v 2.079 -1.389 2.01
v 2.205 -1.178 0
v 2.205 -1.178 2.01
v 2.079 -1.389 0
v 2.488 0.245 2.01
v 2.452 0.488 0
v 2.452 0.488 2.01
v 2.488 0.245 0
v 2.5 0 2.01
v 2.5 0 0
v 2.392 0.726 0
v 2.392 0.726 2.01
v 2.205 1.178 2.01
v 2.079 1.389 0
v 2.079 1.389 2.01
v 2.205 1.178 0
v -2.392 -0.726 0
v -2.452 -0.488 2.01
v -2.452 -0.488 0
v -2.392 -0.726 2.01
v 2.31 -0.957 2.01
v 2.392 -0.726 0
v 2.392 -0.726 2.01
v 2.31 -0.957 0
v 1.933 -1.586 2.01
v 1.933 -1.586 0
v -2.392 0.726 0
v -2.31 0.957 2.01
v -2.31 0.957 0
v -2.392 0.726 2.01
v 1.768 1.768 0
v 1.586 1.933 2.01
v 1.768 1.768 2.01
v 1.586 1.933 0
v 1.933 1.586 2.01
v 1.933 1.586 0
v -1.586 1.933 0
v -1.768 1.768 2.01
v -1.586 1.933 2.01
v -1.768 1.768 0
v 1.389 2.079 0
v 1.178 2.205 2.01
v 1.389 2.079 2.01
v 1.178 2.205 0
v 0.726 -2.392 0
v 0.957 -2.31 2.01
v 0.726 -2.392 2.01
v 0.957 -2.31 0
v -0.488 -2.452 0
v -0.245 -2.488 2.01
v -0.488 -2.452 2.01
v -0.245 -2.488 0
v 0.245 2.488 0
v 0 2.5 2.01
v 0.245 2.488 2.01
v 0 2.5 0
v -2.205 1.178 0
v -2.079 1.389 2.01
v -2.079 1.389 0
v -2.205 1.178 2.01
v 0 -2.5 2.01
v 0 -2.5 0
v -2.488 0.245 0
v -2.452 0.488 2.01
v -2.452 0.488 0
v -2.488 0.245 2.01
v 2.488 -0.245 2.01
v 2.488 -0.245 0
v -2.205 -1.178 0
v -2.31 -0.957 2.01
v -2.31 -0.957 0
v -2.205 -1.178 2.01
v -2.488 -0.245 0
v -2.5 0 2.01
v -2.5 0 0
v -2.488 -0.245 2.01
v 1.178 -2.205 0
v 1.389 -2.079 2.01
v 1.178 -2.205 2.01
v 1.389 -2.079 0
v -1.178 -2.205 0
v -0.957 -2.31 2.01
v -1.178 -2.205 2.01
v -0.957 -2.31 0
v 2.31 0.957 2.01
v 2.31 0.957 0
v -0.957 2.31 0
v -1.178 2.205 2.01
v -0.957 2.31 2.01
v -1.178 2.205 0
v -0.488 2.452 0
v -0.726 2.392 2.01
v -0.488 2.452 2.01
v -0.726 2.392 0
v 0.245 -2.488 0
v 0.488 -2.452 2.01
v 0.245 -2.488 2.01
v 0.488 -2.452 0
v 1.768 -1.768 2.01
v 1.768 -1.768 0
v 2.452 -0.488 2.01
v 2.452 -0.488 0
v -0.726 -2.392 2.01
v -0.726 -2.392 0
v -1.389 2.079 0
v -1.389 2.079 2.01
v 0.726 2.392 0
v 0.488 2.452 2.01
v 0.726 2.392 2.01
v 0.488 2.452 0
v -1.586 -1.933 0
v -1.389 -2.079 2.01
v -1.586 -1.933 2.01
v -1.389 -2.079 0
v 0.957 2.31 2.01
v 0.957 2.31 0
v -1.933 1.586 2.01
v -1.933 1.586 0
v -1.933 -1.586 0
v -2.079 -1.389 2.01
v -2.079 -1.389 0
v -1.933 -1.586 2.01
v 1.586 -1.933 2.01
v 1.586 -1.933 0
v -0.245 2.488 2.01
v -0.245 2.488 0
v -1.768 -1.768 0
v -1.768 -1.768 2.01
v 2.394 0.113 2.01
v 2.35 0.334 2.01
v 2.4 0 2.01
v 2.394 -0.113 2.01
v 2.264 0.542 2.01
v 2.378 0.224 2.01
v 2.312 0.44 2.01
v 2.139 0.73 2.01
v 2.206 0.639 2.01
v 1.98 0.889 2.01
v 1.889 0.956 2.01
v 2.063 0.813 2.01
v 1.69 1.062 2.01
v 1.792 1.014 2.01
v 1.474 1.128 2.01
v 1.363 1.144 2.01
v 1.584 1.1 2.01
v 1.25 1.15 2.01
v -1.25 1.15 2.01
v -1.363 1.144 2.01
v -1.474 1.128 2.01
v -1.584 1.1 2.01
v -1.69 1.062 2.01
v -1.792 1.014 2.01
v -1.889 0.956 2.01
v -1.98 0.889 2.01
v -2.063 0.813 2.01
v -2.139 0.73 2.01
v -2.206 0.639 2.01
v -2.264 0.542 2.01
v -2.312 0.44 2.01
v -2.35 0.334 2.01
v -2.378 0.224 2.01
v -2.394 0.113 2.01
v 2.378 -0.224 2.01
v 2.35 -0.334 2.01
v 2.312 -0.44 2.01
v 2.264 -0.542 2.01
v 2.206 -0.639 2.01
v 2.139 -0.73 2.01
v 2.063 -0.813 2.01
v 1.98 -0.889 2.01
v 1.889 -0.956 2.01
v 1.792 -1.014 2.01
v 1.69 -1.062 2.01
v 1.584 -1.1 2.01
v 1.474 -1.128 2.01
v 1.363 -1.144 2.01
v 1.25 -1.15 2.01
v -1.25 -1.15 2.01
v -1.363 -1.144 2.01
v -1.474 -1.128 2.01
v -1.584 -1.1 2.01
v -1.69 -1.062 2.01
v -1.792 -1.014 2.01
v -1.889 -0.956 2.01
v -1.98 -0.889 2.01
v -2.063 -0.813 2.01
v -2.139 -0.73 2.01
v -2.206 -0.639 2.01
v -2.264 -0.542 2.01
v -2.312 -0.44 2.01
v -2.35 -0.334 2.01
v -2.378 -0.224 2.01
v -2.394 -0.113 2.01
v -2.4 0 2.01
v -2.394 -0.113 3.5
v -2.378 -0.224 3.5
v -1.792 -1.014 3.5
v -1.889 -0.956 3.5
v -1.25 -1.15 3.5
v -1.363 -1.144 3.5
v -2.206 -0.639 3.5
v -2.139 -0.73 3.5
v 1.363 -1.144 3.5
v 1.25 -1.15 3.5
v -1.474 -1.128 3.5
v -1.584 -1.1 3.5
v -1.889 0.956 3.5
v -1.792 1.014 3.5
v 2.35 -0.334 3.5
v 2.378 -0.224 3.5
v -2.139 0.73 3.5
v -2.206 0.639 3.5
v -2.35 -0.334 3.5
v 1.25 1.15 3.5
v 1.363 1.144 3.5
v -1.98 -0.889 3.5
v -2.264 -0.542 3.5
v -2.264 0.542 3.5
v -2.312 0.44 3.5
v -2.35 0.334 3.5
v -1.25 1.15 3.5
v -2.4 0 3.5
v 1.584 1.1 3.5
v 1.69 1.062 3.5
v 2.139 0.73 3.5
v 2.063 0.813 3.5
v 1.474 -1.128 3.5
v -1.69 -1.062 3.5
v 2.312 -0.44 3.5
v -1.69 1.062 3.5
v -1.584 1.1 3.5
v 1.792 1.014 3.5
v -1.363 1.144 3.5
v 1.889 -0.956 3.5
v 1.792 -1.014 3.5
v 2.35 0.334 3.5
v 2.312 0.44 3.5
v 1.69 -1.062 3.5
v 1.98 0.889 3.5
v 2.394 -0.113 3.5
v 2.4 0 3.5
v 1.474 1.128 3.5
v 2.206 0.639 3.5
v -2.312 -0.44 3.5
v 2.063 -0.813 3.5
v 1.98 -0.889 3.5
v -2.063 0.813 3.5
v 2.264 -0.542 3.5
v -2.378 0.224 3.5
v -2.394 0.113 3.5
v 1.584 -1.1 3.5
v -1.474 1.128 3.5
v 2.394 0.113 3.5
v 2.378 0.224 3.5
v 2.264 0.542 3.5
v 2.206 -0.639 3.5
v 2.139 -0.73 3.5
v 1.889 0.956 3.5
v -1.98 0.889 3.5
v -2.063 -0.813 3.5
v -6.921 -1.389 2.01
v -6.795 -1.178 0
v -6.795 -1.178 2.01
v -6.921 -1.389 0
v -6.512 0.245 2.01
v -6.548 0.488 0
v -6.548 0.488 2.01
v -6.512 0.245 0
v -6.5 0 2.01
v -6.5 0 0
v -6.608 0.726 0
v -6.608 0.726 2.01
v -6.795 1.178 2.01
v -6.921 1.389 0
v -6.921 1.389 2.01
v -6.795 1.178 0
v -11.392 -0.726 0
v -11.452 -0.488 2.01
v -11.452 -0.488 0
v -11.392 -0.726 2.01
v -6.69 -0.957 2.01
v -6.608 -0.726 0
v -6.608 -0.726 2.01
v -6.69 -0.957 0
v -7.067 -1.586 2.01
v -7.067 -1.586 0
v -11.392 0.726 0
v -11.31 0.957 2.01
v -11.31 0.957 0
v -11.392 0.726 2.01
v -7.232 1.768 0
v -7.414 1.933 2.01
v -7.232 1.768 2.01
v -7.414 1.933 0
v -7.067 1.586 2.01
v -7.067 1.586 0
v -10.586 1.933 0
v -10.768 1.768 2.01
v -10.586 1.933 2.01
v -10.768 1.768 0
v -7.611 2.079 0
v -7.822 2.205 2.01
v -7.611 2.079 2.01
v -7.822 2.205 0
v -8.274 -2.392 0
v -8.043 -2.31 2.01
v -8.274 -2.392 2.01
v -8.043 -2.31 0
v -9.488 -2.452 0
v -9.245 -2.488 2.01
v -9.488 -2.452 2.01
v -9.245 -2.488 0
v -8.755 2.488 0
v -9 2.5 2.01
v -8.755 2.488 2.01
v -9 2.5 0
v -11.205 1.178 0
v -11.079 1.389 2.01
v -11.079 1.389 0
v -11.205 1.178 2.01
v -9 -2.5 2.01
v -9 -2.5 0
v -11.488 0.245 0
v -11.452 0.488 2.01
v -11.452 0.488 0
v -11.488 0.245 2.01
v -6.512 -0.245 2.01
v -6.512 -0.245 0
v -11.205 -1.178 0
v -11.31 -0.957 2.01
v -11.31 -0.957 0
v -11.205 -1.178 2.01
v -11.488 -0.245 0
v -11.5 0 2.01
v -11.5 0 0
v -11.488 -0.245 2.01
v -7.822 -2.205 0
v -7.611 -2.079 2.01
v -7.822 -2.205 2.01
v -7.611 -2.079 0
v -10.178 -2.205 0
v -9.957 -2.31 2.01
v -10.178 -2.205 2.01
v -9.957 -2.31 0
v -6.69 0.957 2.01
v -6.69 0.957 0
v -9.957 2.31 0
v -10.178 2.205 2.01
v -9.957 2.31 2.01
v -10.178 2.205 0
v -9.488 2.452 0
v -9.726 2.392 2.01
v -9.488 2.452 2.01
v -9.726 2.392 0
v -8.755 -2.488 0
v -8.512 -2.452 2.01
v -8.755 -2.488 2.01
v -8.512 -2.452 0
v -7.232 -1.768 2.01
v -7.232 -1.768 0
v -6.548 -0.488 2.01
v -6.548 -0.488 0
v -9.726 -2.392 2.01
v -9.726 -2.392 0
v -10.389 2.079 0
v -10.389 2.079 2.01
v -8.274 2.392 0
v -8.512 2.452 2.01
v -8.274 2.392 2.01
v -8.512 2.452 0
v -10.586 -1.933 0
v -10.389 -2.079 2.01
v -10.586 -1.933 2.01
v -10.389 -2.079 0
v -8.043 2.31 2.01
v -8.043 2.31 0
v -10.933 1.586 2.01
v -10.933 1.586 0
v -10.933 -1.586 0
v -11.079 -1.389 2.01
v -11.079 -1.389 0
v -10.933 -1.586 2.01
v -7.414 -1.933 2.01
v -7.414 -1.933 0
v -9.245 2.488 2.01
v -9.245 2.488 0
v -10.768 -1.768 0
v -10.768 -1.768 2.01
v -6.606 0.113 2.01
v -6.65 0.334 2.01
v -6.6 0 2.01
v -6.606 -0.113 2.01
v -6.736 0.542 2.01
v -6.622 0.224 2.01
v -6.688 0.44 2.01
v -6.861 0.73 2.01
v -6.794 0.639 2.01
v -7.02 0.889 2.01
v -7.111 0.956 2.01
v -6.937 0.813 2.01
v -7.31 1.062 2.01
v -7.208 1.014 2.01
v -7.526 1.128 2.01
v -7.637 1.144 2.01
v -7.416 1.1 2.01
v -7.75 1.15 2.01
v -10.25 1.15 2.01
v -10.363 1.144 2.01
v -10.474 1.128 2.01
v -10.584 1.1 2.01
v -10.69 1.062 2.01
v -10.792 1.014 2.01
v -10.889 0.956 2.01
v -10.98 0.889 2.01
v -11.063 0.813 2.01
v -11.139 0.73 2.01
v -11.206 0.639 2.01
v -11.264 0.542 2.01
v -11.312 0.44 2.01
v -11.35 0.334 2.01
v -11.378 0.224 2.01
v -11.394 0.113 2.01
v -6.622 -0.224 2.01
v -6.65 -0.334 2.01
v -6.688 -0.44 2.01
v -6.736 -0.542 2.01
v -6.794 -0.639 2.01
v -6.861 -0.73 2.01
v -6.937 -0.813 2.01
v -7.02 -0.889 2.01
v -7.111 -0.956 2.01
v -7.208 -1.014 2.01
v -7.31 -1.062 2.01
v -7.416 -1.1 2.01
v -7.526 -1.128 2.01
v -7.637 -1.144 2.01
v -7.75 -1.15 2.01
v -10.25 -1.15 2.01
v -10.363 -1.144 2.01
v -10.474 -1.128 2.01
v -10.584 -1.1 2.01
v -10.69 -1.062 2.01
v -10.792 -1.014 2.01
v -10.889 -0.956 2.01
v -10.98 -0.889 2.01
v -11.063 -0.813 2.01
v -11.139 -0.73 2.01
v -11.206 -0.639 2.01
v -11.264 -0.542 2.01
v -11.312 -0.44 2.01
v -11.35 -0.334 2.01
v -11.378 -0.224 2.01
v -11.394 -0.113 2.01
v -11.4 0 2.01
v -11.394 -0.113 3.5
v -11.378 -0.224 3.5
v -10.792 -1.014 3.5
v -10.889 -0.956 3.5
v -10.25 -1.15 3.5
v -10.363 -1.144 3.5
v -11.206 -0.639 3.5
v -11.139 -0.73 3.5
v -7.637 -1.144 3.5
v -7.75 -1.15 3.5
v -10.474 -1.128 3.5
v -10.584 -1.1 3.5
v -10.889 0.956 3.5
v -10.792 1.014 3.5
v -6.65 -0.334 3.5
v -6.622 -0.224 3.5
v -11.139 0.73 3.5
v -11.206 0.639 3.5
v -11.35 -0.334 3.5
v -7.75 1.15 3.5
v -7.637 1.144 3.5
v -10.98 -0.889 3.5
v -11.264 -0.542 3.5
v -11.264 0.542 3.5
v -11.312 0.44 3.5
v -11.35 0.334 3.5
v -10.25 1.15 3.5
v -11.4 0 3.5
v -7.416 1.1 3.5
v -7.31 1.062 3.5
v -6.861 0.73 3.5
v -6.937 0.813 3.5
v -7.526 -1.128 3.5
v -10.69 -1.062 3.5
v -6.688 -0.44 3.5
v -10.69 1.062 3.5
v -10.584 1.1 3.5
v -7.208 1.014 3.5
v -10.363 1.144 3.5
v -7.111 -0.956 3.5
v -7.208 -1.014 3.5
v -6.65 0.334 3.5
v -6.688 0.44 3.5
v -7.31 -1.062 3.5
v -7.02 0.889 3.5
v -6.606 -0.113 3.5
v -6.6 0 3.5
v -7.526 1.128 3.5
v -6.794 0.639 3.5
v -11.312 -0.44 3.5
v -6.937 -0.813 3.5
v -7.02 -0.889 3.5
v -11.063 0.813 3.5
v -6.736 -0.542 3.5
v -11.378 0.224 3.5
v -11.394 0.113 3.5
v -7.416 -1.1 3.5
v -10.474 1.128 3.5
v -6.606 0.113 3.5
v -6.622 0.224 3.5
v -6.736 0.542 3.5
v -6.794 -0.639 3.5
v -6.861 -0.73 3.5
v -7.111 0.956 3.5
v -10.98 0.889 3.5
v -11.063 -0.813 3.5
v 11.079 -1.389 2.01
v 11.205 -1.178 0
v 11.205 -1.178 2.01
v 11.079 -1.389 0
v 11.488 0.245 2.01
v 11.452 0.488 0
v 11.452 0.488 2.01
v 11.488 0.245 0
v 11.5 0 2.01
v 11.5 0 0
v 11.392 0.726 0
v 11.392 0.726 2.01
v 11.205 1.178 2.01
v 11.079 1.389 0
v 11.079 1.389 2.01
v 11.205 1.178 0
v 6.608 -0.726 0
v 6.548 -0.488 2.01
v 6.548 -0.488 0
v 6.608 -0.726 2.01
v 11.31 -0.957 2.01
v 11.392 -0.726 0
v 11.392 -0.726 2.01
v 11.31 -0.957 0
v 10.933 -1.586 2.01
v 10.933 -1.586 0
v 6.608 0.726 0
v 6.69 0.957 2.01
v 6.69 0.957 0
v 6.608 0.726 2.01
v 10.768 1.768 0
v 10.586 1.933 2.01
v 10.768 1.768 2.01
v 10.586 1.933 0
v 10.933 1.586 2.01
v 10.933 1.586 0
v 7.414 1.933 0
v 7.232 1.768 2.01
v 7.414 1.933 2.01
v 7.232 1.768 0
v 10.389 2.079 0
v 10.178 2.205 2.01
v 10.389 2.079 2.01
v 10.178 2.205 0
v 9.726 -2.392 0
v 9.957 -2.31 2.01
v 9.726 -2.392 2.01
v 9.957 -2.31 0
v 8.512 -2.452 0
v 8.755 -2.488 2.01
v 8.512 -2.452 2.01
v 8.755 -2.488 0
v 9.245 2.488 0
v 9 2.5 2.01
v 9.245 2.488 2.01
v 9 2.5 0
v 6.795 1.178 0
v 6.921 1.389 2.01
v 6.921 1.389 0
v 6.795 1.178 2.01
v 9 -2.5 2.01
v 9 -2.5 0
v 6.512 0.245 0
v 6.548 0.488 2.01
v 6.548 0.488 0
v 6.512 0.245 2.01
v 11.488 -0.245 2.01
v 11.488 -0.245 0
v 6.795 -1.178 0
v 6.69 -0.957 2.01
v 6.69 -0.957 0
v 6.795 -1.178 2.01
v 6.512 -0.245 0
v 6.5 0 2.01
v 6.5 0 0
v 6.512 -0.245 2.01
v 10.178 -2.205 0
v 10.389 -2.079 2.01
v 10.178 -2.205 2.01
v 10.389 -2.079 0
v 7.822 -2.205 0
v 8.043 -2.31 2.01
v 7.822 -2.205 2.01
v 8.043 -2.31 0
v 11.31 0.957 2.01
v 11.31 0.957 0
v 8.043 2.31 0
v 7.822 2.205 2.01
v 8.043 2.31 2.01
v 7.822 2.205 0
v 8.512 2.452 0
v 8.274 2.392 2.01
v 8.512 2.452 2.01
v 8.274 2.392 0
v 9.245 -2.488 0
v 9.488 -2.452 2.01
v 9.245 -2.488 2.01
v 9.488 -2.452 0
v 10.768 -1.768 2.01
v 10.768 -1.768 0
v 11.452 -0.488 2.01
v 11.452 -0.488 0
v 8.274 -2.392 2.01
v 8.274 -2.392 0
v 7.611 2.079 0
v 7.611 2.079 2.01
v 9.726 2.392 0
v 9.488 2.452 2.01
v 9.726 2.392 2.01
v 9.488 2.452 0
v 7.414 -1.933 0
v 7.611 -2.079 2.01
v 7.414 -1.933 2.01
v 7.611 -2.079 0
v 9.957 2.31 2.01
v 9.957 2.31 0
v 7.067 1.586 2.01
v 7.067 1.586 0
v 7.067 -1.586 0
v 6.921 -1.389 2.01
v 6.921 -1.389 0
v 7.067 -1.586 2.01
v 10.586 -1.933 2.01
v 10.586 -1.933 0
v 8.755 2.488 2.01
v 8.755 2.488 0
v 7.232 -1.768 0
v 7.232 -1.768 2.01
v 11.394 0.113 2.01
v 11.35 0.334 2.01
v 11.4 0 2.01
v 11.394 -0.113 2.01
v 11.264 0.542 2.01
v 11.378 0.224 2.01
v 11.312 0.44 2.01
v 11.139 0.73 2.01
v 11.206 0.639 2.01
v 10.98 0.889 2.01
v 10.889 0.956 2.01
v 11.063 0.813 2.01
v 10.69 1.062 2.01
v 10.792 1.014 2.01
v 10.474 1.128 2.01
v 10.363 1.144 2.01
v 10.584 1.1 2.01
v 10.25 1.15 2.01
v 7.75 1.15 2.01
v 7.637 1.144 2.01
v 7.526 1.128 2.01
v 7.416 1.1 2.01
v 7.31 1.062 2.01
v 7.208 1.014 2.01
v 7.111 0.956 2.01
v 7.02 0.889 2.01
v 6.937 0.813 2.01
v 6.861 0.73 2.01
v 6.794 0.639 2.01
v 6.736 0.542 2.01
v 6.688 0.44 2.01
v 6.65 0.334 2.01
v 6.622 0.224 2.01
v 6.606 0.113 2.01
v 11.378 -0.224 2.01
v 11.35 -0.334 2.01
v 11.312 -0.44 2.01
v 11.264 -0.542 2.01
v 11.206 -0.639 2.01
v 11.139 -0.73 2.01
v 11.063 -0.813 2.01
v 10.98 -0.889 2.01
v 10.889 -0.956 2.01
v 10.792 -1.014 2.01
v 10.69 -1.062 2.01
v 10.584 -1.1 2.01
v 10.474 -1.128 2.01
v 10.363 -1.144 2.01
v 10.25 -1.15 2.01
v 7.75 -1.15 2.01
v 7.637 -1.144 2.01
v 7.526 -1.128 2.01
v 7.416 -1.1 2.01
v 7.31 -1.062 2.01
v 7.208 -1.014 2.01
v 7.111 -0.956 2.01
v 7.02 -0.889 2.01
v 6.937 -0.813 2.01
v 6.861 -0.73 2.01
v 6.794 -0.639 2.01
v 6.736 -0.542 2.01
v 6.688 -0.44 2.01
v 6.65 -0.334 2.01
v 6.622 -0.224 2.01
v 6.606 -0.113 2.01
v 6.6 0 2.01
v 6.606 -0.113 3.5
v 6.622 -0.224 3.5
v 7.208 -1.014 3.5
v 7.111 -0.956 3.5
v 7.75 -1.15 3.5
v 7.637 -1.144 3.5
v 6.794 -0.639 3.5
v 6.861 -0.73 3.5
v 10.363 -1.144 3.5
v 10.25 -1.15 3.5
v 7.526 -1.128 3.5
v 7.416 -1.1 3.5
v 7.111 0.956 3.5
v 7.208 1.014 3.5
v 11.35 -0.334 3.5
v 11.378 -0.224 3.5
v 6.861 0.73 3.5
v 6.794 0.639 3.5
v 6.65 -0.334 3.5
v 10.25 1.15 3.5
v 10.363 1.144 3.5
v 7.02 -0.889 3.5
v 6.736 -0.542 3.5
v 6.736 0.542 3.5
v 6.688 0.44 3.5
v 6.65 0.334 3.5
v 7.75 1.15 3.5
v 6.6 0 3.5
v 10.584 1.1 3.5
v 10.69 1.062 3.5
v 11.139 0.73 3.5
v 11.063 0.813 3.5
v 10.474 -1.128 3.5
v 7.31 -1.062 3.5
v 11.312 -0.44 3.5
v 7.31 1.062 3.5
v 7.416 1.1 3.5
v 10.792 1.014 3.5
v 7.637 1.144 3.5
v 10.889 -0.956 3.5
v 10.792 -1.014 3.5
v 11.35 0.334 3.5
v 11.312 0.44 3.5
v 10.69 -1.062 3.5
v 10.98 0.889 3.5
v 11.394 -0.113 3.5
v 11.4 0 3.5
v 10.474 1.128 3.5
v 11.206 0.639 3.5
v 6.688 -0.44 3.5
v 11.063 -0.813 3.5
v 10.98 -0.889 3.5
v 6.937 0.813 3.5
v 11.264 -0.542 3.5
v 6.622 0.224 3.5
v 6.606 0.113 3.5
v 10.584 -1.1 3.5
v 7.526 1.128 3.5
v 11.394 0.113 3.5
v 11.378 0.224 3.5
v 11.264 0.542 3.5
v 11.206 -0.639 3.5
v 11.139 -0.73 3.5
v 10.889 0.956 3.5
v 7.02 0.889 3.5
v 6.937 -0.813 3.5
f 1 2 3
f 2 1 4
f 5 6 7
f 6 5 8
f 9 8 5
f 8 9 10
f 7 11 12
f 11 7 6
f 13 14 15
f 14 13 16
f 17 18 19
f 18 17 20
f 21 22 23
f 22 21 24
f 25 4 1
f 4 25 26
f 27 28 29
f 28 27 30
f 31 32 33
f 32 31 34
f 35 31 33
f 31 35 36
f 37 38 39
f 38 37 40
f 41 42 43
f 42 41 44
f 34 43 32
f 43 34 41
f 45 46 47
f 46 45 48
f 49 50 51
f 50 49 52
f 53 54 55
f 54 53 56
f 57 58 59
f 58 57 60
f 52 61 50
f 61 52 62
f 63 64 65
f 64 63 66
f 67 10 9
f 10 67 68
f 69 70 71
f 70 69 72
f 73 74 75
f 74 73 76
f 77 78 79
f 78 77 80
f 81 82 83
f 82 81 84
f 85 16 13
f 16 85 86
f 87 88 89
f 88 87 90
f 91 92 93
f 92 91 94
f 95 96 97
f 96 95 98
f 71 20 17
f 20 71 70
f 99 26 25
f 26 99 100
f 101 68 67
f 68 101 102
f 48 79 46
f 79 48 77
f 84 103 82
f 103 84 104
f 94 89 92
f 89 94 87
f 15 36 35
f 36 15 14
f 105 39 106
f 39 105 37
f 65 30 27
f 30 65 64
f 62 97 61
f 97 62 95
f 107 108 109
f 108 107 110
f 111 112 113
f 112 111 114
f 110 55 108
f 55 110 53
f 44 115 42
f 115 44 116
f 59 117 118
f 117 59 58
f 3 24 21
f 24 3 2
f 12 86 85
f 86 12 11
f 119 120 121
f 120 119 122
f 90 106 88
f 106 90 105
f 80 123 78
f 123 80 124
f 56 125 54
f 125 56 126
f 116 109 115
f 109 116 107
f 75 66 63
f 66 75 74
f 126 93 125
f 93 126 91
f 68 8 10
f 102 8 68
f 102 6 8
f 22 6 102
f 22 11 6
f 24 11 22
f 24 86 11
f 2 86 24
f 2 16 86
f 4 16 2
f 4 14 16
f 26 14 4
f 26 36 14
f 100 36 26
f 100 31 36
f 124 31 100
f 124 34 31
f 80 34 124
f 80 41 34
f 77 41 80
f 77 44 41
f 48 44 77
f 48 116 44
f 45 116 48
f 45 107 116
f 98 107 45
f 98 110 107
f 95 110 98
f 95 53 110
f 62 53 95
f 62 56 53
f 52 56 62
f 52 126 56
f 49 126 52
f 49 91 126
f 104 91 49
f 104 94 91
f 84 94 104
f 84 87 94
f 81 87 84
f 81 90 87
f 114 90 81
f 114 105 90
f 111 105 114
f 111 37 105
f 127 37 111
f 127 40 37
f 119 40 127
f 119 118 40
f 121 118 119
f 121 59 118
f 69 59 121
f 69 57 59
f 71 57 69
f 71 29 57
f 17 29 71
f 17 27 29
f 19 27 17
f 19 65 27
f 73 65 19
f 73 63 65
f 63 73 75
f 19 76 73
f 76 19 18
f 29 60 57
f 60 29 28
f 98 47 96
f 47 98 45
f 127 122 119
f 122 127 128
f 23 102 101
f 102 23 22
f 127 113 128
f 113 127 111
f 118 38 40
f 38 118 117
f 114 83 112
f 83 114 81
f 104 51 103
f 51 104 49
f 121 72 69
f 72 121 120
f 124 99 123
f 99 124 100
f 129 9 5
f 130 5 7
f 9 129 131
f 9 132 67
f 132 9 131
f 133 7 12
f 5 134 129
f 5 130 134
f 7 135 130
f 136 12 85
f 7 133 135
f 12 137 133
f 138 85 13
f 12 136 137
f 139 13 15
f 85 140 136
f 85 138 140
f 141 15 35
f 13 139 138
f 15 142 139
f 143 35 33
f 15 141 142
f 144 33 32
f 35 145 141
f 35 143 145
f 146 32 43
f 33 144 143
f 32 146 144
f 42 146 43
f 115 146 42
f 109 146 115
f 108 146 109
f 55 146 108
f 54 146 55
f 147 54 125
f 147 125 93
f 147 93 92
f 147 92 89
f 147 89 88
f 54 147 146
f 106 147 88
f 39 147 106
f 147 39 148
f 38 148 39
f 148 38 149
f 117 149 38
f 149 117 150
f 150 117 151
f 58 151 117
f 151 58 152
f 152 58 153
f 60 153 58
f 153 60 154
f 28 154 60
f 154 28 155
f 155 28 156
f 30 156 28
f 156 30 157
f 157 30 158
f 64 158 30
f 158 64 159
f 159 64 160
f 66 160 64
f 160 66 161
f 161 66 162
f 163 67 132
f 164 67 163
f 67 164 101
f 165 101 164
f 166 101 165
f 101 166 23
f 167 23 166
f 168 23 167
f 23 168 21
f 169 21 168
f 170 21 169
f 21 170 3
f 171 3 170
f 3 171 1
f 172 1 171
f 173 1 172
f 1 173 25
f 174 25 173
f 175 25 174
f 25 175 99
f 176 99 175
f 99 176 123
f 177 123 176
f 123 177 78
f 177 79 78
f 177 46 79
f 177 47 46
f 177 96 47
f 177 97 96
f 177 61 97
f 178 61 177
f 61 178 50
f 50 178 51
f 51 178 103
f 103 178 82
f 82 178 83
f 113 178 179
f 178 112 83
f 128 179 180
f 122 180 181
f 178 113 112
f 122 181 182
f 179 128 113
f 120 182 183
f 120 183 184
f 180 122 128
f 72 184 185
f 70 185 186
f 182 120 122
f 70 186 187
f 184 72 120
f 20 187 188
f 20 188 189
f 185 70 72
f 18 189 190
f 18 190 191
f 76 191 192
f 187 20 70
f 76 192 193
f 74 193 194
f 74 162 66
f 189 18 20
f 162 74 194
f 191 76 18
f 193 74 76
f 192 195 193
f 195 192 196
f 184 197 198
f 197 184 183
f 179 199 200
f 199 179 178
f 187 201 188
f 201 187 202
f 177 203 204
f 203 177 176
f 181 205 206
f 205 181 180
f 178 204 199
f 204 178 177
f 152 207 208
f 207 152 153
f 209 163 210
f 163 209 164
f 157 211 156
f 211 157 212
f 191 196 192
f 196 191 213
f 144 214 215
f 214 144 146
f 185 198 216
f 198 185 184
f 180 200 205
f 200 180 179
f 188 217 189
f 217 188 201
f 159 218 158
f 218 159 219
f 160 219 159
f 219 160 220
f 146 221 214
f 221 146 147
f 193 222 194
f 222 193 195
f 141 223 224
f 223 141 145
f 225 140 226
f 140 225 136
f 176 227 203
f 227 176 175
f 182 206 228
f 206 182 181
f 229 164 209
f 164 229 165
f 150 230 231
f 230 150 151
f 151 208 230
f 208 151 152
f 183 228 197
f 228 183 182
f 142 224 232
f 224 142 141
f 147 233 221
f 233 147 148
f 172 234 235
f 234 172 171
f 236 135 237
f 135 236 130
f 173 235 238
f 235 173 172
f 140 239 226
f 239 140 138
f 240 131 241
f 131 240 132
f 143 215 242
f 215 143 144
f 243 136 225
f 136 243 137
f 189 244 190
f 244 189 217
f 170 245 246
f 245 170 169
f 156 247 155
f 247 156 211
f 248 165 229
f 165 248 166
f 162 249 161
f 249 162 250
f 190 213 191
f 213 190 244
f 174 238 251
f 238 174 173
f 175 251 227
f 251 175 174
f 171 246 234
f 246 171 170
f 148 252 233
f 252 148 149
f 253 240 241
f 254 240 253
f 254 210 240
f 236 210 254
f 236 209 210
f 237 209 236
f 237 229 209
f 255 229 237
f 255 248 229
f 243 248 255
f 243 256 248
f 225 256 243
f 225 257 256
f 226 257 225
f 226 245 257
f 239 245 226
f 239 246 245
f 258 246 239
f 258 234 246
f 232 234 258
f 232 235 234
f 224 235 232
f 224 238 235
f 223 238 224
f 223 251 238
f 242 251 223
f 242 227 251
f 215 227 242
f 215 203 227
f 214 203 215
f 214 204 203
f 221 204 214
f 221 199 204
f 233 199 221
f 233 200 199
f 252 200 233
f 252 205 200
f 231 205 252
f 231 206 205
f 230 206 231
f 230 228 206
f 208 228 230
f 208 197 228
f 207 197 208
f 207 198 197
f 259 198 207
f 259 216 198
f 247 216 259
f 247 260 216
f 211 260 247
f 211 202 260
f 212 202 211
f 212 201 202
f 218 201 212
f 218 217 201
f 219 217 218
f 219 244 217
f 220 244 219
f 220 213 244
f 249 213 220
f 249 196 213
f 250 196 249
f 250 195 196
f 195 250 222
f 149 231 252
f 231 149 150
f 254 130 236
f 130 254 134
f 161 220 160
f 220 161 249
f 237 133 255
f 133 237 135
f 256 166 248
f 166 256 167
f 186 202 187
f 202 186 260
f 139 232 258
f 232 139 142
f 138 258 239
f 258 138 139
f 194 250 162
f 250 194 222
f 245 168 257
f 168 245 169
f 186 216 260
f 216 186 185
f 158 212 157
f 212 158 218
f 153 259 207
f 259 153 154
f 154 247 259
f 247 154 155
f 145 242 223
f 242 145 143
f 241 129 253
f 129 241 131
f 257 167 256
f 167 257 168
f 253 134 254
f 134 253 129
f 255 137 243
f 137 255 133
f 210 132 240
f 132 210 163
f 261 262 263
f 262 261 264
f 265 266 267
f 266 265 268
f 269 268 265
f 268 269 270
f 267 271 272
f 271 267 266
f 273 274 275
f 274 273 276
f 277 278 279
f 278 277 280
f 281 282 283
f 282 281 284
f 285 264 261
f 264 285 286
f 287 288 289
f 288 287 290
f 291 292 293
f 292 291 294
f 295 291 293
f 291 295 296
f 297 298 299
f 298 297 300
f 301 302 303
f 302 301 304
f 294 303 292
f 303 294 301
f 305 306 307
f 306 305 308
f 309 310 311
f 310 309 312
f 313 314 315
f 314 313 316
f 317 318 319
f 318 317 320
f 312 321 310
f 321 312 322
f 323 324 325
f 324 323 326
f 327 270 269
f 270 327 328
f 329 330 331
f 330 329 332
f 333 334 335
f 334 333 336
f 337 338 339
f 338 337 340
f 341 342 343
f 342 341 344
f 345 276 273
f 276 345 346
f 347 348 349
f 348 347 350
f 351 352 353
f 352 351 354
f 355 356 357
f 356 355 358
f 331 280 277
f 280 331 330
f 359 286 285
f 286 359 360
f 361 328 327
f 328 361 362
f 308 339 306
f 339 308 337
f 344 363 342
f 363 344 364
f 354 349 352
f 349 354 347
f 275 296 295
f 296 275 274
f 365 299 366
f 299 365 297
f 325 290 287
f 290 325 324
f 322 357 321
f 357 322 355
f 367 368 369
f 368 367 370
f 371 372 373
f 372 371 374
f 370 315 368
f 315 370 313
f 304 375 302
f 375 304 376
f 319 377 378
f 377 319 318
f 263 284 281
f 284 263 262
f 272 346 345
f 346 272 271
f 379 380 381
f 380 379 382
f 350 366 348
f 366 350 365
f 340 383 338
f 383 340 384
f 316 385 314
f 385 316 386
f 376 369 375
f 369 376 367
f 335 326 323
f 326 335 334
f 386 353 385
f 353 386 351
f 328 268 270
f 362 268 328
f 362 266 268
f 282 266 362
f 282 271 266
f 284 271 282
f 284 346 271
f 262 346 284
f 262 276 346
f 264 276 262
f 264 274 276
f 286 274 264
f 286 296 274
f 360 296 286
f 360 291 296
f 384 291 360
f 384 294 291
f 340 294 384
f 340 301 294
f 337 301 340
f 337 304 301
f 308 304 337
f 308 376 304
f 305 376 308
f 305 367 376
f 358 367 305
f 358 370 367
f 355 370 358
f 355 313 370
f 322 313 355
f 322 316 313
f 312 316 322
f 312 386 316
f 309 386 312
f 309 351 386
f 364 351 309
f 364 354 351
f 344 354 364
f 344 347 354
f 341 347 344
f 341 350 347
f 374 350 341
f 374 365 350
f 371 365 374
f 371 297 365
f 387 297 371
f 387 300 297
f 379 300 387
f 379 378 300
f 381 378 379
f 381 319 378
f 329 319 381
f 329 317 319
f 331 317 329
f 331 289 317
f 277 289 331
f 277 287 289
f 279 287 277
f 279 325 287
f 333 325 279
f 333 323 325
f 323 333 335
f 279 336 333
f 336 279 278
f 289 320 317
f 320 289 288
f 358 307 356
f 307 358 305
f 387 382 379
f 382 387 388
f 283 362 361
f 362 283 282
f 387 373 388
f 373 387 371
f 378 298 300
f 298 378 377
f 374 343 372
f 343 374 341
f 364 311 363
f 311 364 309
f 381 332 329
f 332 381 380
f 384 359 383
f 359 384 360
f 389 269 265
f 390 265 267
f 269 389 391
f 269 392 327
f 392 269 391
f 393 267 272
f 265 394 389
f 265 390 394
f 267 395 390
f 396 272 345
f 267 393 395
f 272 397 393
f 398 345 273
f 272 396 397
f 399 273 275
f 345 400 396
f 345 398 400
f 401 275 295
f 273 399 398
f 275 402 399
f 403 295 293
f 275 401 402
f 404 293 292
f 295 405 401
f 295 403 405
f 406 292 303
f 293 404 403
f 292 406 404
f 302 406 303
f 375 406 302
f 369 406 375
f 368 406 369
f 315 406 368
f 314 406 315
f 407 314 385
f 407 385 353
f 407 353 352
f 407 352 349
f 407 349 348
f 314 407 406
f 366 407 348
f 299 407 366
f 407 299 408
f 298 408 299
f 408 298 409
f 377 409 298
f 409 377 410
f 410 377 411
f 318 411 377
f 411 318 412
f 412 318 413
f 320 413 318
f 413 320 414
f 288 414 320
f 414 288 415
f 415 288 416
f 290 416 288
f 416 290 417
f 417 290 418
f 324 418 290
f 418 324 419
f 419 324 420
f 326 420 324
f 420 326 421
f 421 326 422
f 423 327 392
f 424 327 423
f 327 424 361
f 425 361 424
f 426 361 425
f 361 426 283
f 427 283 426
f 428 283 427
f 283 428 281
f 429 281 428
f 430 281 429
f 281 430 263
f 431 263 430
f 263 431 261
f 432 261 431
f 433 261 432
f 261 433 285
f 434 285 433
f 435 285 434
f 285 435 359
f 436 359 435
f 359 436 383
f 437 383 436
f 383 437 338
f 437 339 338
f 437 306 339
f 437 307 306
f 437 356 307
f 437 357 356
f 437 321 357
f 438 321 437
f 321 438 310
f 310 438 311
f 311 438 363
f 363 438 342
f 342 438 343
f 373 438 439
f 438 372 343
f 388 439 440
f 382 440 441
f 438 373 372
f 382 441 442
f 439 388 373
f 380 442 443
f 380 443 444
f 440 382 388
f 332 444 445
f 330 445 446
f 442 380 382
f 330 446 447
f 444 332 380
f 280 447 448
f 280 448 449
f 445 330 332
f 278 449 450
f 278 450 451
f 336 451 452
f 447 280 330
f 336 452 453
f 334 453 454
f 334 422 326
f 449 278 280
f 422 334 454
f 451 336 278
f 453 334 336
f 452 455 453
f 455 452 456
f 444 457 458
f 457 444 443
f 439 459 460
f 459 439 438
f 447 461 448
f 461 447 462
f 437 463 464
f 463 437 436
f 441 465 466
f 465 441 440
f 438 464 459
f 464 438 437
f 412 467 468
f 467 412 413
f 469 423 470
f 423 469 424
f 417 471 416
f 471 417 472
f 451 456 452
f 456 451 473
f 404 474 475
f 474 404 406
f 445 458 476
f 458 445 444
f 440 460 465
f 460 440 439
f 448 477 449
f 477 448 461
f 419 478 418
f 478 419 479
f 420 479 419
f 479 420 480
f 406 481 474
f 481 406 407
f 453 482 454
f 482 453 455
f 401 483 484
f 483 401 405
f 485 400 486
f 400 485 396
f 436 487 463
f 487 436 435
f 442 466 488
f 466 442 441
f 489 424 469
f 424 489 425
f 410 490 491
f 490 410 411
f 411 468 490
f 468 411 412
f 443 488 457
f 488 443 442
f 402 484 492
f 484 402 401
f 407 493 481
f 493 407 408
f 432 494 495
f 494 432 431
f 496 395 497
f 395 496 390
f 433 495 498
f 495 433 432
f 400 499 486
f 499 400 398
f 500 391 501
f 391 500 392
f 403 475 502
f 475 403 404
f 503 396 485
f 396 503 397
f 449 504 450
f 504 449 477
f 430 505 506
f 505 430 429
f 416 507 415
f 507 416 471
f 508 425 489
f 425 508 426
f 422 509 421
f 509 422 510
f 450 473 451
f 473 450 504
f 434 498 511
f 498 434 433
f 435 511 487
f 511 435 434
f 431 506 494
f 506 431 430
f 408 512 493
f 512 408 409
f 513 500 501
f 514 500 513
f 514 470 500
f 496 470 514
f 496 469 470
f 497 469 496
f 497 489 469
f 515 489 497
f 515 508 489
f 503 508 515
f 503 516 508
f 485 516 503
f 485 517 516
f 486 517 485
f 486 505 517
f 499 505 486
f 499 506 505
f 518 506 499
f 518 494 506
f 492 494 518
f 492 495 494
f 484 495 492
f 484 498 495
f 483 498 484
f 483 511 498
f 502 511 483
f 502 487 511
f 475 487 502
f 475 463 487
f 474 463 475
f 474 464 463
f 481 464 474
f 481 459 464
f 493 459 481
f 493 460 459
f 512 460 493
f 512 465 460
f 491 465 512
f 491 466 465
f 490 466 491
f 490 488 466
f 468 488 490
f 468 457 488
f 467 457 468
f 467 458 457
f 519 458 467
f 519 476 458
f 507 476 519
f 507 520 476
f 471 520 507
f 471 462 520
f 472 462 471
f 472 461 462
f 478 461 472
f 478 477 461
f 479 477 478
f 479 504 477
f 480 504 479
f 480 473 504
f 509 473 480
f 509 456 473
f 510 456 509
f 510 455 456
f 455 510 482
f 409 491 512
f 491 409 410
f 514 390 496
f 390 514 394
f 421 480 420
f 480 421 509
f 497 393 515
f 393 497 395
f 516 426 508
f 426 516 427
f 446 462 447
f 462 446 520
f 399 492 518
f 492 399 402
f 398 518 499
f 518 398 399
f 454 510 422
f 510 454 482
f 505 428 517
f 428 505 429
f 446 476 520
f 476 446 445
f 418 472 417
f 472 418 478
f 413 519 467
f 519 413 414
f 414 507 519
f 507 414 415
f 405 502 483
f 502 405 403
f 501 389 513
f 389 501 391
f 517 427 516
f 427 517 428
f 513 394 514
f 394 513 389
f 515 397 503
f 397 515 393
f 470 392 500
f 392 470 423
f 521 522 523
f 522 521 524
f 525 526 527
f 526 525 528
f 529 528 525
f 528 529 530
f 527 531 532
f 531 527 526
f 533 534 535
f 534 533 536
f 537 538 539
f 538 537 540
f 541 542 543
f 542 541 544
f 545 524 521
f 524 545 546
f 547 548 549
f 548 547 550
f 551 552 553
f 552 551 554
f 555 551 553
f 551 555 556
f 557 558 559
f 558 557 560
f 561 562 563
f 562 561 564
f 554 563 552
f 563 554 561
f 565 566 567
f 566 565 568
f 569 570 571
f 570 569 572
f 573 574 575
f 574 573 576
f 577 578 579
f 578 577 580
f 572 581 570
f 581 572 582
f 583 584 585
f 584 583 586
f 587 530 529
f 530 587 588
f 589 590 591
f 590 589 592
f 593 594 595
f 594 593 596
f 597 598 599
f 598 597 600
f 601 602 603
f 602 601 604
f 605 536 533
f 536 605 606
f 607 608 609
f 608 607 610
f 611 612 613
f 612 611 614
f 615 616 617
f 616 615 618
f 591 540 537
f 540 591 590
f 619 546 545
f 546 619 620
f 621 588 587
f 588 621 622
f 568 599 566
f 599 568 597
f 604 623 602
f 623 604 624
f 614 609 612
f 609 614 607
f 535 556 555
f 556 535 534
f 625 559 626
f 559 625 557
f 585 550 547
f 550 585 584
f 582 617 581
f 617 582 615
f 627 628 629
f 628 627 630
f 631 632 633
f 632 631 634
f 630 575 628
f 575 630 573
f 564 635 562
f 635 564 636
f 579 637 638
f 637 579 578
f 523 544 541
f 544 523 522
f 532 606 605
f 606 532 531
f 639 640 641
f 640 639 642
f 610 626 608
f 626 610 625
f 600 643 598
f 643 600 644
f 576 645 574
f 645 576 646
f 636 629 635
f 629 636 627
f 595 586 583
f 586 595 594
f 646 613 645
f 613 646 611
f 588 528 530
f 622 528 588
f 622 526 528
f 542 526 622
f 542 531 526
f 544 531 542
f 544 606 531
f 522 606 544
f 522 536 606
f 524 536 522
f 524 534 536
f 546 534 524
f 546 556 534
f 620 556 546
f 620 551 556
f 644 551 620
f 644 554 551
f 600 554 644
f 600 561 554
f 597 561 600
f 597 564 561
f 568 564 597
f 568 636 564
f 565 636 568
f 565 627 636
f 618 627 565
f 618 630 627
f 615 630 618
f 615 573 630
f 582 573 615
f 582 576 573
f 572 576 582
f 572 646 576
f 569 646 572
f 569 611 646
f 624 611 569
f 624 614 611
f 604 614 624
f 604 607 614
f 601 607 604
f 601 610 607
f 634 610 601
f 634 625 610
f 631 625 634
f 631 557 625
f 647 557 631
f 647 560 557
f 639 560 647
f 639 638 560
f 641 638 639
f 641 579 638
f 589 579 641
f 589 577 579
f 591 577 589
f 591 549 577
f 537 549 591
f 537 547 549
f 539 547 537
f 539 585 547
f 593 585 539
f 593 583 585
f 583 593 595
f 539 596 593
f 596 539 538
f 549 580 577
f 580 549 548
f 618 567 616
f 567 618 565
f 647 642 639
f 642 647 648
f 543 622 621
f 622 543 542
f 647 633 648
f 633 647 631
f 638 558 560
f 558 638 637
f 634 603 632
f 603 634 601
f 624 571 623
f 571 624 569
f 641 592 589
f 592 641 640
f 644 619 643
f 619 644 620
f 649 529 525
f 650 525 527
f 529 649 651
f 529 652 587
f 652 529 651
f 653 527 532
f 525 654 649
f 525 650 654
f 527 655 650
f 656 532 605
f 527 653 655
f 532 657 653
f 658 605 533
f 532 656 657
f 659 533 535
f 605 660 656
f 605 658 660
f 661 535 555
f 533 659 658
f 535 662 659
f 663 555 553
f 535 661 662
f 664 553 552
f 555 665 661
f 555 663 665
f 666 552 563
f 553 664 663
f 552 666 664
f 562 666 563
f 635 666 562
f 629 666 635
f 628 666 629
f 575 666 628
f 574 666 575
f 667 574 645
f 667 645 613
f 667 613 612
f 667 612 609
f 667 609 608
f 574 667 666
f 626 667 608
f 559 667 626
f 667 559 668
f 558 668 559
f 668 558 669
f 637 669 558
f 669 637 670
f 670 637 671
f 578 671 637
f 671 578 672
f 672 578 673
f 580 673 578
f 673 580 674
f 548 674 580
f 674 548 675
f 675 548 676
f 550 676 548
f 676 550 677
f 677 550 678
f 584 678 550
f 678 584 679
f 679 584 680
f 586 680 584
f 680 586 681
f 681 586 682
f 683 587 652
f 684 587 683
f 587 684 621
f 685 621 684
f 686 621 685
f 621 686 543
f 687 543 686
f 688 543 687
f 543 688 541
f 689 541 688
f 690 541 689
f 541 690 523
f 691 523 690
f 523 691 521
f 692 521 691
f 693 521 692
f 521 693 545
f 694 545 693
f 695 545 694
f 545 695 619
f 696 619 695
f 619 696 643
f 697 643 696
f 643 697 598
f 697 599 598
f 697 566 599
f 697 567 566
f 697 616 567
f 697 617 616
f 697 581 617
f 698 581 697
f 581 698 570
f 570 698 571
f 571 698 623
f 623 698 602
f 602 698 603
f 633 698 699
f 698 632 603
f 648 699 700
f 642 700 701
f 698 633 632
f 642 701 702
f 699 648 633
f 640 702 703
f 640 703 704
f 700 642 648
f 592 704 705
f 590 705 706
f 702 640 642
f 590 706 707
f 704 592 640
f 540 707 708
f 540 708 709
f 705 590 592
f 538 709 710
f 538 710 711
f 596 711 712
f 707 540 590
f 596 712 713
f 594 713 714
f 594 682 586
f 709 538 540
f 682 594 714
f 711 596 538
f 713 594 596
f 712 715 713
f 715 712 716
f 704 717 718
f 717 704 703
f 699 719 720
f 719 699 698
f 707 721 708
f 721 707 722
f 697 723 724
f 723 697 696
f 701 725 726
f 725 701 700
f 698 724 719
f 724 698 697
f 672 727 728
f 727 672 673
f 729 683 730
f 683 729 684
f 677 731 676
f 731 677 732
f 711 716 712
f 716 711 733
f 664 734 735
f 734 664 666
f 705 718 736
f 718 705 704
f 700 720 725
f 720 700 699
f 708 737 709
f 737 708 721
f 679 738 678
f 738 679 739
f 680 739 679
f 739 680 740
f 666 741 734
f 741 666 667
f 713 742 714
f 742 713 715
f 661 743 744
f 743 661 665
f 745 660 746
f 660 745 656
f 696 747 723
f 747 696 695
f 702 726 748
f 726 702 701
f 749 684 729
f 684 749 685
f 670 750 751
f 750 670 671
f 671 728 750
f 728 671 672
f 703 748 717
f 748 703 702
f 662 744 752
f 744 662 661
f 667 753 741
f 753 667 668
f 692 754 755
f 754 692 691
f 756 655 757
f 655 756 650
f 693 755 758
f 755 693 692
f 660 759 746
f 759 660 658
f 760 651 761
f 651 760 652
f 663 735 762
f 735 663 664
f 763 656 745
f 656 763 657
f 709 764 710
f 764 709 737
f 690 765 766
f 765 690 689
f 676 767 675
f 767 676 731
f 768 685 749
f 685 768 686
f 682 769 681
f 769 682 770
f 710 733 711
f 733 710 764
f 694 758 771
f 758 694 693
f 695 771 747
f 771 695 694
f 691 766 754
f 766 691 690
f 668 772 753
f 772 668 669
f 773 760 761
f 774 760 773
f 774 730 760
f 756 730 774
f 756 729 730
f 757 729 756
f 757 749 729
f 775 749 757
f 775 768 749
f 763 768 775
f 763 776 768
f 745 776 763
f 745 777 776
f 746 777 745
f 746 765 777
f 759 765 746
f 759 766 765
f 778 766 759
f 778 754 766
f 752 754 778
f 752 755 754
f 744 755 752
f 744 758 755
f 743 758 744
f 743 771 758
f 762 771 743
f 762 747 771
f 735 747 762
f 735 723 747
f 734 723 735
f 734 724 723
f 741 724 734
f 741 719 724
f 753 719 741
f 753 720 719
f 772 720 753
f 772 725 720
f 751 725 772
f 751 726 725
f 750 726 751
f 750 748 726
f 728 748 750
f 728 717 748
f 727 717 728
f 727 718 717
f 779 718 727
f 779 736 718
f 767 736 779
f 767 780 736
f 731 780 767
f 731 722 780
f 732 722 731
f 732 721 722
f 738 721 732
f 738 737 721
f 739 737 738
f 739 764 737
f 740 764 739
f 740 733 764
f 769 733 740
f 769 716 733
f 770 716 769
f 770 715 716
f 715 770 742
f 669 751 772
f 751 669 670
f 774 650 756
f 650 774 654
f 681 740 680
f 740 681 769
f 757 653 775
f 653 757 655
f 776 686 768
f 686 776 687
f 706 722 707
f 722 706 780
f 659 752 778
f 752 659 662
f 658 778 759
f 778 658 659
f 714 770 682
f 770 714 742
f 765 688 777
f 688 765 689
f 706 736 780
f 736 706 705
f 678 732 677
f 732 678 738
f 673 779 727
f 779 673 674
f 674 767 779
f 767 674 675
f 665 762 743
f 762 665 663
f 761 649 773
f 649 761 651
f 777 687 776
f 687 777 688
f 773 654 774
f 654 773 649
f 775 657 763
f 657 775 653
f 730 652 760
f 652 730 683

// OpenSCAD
// file: common.scad
$fn = 64;

body_w = 30.5;
body_h = 36;
body_d = 10;

emboss = 5;

tolerances = .1;
dtolerances = tolerances * 2;

lcd_top_offset = 2.5;

lcd_w = 24.8;
lcd_h = 16.7;
lcd_d = 1.5;

lcd_border = .6;
lcd_chin = 3;

strappole_w = 21;
strappole_d = 1.5;

top_d = lcd_d + 1;

module nuthole(w) {
	translate([-5.75/2, -2.5/2, -6.5/2]) cube([5.75, 2.5, 999]);
	
	rotate([90, 0, 0]) cylinder(h = w, d = 3.2, center = true);	
}
// main file
include <common.scad>

module buttonhole() {
	cylinder(d = 5, h = lcd_d + 1.01 - .5);
	
	hull() {
		translate([-1.25, 0]) cylinder(d = 2.5 - dtolerances, h = 3.5);
		translate([1.25, 0]) cylinder(d = 2.5 - dtolerances, h = 3.5);
	}
}

translate([0, 0]) buttonhole();
translate([-9, 0]) buttonhole();
translate([9, 0]) buttonhole();
